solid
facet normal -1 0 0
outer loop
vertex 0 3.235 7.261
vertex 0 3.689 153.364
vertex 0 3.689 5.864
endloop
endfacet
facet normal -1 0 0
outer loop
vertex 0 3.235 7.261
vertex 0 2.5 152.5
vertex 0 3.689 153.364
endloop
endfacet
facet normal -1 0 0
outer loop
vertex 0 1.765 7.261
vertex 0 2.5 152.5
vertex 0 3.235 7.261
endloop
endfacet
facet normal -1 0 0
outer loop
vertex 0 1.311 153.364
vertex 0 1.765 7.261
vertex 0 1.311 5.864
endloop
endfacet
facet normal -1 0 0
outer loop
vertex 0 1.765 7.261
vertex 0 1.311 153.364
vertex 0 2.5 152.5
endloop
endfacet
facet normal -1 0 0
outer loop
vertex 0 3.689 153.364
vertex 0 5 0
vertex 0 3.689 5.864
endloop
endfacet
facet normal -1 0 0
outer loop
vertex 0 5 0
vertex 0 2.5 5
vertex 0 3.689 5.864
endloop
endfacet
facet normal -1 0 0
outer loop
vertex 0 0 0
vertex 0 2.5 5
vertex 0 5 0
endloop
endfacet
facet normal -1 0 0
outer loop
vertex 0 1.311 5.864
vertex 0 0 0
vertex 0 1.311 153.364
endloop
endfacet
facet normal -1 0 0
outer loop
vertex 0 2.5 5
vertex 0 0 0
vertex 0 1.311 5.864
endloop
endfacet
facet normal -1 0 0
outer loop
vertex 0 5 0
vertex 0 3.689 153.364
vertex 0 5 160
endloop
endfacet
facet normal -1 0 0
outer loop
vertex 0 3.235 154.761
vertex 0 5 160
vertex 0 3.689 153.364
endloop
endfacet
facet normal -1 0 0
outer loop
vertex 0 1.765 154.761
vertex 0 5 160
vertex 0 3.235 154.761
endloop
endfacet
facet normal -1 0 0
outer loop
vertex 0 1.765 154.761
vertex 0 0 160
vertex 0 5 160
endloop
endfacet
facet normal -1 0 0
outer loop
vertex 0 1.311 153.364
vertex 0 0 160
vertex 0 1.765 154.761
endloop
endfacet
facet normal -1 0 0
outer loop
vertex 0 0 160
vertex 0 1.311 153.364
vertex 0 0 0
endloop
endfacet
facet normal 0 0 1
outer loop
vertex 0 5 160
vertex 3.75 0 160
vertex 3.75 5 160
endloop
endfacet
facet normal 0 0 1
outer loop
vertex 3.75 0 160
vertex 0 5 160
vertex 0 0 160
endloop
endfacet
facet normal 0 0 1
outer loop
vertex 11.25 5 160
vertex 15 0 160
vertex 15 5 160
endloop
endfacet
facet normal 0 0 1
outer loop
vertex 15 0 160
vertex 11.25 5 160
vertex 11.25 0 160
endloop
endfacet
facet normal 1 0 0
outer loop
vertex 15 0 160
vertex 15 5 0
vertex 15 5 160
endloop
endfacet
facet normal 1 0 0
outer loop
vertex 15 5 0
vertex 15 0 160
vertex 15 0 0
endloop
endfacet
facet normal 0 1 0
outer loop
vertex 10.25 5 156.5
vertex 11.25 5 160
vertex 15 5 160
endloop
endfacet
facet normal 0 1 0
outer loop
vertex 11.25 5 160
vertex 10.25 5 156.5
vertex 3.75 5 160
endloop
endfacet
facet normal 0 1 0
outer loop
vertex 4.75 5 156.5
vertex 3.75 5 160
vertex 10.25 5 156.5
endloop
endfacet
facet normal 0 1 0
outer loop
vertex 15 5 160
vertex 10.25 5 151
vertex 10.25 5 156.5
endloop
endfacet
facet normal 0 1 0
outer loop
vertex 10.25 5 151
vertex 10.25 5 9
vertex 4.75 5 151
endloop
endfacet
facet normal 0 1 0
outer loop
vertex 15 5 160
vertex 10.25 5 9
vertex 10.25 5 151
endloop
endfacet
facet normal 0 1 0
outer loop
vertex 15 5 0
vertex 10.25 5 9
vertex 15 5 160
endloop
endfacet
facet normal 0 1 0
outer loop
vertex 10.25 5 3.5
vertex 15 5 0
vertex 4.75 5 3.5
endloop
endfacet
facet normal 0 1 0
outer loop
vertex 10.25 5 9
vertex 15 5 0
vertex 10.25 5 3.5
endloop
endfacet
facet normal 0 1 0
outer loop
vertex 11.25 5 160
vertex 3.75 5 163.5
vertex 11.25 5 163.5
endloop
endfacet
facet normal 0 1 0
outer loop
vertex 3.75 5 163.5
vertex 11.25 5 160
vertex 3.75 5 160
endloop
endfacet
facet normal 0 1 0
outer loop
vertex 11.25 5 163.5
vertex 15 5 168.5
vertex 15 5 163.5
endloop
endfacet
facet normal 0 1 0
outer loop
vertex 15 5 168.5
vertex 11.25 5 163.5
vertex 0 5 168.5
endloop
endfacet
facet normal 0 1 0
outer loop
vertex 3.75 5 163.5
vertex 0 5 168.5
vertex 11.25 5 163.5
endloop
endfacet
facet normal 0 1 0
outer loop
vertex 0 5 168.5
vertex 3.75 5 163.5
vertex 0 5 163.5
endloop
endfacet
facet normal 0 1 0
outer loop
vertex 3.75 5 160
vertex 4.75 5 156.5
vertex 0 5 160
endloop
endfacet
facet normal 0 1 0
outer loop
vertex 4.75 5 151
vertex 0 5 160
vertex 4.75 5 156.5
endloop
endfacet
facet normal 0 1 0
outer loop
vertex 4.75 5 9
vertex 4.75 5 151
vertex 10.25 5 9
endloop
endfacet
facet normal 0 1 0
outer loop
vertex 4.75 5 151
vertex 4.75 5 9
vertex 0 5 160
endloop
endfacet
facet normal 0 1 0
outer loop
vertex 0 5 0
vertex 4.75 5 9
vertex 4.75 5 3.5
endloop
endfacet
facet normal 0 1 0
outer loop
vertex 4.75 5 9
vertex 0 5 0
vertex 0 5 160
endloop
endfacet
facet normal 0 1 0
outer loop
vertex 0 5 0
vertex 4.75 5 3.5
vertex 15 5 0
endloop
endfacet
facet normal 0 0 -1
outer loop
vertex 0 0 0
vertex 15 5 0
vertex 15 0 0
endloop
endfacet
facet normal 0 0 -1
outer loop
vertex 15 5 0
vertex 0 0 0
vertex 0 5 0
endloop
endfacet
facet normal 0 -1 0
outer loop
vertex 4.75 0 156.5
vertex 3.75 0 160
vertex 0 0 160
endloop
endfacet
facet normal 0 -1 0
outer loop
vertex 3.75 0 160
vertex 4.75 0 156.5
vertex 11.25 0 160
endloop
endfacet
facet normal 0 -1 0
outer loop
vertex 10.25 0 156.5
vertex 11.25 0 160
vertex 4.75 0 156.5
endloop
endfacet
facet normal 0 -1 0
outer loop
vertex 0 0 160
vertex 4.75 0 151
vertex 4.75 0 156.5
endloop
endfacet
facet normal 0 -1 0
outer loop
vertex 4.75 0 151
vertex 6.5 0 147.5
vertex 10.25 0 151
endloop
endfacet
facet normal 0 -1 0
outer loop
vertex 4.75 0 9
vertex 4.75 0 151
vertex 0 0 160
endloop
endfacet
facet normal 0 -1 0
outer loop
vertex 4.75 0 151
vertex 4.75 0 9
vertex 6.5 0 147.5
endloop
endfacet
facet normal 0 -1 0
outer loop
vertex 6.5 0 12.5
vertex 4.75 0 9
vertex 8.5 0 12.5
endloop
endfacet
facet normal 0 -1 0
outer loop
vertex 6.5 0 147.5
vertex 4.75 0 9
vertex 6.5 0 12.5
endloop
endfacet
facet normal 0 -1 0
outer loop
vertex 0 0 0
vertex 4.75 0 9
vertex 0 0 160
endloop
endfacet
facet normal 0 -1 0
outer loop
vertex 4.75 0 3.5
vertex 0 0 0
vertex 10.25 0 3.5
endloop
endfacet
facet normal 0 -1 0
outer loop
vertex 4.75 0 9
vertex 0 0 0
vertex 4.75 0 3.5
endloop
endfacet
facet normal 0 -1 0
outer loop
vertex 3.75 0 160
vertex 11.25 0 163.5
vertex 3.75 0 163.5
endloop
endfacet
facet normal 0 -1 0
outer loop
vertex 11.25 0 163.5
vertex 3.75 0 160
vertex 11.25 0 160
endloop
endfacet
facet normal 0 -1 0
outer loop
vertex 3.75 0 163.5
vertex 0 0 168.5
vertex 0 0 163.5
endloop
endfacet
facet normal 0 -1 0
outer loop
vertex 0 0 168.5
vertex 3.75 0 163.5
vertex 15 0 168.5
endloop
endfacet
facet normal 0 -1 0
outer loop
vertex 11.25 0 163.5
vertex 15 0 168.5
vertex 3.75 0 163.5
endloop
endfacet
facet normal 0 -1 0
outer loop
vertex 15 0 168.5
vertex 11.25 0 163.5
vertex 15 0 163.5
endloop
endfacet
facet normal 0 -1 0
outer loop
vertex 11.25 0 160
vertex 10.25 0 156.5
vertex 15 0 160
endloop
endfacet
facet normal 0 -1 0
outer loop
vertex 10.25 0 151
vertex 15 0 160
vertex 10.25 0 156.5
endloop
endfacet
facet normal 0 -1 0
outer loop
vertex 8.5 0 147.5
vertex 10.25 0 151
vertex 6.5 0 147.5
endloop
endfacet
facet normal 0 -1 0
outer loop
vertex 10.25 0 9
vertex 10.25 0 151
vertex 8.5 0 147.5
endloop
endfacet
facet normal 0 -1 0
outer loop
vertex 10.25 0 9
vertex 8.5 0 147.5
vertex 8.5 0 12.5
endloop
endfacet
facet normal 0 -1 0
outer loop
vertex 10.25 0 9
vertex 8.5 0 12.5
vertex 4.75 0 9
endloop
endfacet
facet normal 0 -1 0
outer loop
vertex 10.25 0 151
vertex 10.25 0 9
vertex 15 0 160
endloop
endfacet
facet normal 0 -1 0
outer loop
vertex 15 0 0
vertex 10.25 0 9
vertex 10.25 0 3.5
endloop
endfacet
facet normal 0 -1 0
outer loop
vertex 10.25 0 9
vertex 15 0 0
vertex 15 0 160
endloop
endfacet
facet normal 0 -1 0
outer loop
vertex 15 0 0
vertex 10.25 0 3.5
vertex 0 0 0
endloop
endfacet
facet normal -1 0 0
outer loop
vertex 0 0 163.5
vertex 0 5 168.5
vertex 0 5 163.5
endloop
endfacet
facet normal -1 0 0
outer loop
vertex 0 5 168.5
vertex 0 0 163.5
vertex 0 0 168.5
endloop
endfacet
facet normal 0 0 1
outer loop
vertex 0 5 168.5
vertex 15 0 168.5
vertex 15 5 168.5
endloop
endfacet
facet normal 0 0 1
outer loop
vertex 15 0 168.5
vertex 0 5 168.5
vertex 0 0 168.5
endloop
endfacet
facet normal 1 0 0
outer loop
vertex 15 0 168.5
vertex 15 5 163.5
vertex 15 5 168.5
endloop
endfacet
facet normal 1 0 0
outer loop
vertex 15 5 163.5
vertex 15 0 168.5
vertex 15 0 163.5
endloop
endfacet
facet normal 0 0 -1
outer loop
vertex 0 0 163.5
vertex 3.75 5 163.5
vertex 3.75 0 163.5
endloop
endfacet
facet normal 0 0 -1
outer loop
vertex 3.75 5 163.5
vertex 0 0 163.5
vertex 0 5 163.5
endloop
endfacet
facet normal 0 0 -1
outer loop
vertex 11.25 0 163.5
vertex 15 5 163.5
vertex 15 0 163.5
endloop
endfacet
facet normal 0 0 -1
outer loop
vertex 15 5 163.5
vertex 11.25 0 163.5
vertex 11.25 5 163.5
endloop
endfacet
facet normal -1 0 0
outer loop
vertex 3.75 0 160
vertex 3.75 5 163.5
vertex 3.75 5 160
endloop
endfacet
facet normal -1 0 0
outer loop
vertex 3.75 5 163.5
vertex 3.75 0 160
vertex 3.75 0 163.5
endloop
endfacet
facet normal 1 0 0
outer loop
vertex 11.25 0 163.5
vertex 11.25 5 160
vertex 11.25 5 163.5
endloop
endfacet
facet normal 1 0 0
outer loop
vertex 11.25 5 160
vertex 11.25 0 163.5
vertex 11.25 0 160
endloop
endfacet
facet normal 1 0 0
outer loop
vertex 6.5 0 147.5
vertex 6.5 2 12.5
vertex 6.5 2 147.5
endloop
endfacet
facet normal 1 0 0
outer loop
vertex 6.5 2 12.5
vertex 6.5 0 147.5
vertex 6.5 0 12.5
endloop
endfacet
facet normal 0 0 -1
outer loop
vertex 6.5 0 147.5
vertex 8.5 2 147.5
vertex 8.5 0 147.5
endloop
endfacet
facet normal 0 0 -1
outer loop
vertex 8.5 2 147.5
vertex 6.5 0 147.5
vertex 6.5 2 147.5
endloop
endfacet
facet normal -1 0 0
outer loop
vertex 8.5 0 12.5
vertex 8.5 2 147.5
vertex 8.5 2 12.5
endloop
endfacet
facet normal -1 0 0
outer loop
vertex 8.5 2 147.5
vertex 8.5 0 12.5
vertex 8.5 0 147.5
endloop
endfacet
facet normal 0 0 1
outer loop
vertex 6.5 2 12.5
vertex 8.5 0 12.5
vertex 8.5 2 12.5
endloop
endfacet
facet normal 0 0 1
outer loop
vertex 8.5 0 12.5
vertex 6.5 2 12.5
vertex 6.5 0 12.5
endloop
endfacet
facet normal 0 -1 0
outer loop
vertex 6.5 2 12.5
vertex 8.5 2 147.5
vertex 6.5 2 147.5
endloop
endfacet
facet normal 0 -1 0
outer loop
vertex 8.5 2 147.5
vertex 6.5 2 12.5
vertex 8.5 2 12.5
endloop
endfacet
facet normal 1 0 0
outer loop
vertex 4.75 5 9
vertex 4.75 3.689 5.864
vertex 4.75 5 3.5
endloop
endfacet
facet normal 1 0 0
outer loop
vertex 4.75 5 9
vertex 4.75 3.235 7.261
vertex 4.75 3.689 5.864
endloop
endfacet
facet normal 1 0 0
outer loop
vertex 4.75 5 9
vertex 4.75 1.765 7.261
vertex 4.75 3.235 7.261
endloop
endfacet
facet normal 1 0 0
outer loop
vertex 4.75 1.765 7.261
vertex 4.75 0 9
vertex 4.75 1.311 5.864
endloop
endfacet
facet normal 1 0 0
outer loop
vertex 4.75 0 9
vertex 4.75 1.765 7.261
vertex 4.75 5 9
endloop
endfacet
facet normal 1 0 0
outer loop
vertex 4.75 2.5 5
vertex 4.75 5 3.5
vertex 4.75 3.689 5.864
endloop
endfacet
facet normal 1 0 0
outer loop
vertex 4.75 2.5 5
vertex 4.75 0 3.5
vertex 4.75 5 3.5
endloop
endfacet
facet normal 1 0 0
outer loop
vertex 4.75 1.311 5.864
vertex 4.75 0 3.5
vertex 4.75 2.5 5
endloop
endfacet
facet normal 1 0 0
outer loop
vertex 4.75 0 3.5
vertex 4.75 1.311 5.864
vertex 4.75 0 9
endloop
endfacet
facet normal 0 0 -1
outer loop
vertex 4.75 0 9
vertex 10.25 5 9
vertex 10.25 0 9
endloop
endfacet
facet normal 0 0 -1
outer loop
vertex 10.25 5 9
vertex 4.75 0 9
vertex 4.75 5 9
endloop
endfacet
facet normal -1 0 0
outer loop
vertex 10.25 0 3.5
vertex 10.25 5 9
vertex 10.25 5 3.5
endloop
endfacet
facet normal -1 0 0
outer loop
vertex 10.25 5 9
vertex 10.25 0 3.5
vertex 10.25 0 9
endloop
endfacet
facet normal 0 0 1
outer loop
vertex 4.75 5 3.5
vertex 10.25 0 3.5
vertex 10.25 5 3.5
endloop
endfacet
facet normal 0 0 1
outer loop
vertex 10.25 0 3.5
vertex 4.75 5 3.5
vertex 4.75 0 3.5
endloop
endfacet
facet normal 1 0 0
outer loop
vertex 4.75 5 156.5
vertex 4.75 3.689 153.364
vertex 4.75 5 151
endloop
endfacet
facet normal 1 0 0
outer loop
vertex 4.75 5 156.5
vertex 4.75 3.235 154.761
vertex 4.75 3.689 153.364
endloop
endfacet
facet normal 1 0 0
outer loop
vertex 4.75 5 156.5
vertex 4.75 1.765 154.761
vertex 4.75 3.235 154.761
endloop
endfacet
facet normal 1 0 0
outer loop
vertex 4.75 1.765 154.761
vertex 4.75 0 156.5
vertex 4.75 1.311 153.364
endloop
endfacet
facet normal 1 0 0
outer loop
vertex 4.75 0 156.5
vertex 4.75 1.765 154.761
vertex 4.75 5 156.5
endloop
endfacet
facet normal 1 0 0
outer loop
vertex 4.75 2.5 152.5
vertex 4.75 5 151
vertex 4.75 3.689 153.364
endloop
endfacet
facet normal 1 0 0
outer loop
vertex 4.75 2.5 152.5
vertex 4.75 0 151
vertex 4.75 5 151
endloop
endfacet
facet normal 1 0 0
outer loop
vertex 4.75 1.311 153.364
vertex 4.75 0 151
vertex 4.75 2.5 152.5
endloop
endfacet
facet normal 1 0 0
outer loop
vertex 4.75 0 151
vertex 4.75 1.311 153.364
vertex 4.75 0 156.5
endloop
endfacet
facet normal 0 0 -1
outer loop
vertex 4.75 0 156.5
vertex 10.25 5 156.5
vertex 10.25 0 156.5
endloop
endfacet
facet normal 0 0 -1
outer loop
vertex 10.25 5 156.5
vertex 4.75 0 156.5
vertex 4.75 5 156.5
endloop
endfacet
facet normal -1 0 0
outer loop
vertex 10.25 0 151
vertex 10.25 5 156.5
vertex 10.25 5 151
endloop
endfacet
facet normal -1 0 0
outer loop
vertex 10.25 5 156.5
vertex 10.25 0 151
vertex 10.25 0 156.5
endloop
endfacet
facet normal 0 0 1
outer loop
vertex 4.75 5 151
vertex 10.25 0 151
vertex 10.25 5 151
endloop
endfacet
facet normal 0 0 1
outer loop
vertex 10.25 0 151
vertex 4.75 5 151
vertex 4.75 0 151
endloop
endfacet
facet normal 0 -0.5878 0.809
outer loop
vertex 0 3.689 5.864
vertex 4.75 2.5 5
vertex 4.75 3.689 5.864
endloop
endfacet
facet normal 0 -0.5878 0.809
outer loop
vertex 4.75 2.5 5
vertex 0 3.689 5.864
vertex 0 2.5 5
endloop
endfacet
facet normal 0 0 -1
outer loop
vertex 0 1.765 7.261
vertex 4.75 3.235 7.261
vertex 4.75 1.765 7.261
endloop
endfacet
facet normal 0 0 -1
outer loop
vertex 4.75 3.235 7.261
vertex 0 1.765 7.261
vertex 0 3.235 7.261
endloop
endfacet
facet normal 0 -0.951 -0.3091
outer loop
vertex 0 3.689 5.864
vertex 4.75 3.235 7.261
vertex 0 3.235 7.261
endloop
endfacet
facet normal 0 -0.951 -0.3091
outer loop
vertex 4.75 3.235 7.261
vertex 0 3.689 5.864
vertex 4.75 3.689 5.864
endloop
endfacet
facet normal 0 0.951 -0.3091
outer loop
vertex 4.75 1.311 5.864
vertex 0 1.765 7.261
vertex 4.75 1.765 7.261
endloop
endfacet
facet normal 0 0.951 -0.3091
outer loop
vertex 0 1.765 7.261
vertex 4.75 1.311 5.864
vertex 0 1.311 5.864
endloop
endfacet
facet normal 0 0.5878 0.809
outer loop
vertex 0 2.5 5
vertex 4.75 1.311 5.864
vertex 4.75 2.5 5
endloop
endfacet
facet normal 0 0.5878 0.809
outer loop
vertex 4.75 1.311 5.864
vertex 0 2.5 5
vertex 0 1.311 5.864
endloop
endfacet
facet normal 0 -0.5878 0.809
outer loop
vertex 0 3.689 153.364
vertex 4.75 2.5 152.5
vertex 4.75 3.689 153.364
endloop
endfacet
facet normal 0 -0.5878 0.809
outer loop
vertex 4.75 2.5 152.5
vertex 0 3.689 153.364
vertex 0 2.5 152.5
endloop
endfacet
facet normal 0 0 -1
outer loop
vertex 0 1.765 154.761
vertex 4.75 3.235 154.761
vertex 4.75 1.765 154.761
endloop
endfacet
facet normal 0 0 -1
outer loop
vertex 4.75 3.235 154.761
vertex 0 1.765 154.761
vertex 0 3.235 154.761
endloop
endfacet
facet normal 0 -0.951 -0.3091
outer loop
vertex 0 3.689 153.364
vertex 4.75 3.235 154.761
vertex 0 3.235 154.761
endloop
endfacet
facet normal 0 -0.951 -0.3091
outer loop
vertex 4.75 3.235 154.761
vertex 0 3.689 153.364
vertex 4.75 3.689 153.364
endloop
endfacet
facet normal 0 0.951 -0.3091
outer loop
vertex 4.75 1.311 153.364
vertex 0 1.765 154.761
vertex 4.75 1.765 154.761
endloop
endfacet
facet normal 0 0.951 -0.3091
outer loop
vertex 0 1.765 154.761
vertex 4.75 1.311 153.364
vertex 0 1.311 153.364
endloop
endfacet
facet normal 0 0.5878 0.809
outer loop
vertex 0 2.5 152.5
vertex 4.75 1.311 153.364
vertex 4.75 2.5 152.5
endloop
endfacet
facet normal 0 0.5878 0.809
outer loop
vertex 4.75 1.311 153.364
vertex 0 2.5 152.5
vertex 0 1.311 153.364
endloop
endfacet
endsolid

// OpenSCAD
/////////////////////////////////////////////////////////////////////////////////
// Adapter for drilling machine in the embedded lab.
//
// Author:              Maximilian Stiefel
// Last modification:   10.06.2017
/////////////////////////////////////////////////////////////////////////////////

/////////////////////////////////////////////////////////////////////////////////
// Vars
/////////////////////////////////////////////////////////////////////////////////
// Dimesions holder
holder_height = 160;
holder_width = 15;
holder_depth = 5;

// Dimensions notch
notch_height = 135;
notch_width = 2;
notch_depth = 3;

// General allowance
allowance = 0.5;

// Dimensions crossbar
crossbar_height = 5 + allowance;
crossbar_width = 5 + allowance;

// Dimensions lid
lid_thickness = 3;
lid_slot_width = 8;

// Dimensions neck
neck_width = lid_slot_width - allowance;
neck_depth = holder_depth;
neck_height = lid_thickness + allowance;

// Dimensions head 
head_width = holder_width;
head_depth = holder_depth;
head_height = 5;

// Suitable for M3 screw thread
hole_diameter = 2.5;

// Height difference between notch for PCB and the actual holder
height_diff_1 = holder_height - notch_height;

// Width difference between crossbar and holder
width_diff_1 = holder_width - crossbar_width;

// Width difference between holder and neck
width_diff_2 = holder_width - neck_width;

/////////////////////////////////////////////////////////////////////////////////
// Action
/////////////////////////////////////////////////////////////////////////////////
difference()
{
union()
{
	// Cube for the base holder
	cube([holder_width, holder_depth, holder_height], center = false);
	// Head
	translate([0, 0, holder_height + neck_height])
	cube([head_width, head_depth, head_height]);
	// Neck
	translate([width_diff_2/2, 0, holder_height])
	cube([neck_width, neck_depth, neck_height]);
}

union()
{
	// Cube for notch
	translate([holder_width/2 - notch_width/2, -1, height_diff_1/2])
	cube([notch_width, notch_depth, notch_height], center = false);

	// Slots for crossbars
	translate([width_diff_1/2, -1, (1/4)*height_diff_1 - crossbar_height/2])
	cube([crossbar_width, holder_depth + 2, crossbar_height], center = false);
	translate([width_diff_1/2, -1, (3/4)*height_diff_1 + notch_height - crossbar_height/2])
	cube([crossbar_width, holder_depth + 2, crossbar_height], center = false);

	// Drill holes for screws
	translate([0, holder_depth/2, (1/4)*height_diff_1])
	rotate([0, 90, 0])
	cylinder(h = 9, r = hole_diameter/2);
	translate([0, holder_depth/2,(3/4)*height_diff_1 + notch_height])
	rotate([0, 90, 0])
	cylinder(h = 9, r = hole_diameter/2);
}
}
